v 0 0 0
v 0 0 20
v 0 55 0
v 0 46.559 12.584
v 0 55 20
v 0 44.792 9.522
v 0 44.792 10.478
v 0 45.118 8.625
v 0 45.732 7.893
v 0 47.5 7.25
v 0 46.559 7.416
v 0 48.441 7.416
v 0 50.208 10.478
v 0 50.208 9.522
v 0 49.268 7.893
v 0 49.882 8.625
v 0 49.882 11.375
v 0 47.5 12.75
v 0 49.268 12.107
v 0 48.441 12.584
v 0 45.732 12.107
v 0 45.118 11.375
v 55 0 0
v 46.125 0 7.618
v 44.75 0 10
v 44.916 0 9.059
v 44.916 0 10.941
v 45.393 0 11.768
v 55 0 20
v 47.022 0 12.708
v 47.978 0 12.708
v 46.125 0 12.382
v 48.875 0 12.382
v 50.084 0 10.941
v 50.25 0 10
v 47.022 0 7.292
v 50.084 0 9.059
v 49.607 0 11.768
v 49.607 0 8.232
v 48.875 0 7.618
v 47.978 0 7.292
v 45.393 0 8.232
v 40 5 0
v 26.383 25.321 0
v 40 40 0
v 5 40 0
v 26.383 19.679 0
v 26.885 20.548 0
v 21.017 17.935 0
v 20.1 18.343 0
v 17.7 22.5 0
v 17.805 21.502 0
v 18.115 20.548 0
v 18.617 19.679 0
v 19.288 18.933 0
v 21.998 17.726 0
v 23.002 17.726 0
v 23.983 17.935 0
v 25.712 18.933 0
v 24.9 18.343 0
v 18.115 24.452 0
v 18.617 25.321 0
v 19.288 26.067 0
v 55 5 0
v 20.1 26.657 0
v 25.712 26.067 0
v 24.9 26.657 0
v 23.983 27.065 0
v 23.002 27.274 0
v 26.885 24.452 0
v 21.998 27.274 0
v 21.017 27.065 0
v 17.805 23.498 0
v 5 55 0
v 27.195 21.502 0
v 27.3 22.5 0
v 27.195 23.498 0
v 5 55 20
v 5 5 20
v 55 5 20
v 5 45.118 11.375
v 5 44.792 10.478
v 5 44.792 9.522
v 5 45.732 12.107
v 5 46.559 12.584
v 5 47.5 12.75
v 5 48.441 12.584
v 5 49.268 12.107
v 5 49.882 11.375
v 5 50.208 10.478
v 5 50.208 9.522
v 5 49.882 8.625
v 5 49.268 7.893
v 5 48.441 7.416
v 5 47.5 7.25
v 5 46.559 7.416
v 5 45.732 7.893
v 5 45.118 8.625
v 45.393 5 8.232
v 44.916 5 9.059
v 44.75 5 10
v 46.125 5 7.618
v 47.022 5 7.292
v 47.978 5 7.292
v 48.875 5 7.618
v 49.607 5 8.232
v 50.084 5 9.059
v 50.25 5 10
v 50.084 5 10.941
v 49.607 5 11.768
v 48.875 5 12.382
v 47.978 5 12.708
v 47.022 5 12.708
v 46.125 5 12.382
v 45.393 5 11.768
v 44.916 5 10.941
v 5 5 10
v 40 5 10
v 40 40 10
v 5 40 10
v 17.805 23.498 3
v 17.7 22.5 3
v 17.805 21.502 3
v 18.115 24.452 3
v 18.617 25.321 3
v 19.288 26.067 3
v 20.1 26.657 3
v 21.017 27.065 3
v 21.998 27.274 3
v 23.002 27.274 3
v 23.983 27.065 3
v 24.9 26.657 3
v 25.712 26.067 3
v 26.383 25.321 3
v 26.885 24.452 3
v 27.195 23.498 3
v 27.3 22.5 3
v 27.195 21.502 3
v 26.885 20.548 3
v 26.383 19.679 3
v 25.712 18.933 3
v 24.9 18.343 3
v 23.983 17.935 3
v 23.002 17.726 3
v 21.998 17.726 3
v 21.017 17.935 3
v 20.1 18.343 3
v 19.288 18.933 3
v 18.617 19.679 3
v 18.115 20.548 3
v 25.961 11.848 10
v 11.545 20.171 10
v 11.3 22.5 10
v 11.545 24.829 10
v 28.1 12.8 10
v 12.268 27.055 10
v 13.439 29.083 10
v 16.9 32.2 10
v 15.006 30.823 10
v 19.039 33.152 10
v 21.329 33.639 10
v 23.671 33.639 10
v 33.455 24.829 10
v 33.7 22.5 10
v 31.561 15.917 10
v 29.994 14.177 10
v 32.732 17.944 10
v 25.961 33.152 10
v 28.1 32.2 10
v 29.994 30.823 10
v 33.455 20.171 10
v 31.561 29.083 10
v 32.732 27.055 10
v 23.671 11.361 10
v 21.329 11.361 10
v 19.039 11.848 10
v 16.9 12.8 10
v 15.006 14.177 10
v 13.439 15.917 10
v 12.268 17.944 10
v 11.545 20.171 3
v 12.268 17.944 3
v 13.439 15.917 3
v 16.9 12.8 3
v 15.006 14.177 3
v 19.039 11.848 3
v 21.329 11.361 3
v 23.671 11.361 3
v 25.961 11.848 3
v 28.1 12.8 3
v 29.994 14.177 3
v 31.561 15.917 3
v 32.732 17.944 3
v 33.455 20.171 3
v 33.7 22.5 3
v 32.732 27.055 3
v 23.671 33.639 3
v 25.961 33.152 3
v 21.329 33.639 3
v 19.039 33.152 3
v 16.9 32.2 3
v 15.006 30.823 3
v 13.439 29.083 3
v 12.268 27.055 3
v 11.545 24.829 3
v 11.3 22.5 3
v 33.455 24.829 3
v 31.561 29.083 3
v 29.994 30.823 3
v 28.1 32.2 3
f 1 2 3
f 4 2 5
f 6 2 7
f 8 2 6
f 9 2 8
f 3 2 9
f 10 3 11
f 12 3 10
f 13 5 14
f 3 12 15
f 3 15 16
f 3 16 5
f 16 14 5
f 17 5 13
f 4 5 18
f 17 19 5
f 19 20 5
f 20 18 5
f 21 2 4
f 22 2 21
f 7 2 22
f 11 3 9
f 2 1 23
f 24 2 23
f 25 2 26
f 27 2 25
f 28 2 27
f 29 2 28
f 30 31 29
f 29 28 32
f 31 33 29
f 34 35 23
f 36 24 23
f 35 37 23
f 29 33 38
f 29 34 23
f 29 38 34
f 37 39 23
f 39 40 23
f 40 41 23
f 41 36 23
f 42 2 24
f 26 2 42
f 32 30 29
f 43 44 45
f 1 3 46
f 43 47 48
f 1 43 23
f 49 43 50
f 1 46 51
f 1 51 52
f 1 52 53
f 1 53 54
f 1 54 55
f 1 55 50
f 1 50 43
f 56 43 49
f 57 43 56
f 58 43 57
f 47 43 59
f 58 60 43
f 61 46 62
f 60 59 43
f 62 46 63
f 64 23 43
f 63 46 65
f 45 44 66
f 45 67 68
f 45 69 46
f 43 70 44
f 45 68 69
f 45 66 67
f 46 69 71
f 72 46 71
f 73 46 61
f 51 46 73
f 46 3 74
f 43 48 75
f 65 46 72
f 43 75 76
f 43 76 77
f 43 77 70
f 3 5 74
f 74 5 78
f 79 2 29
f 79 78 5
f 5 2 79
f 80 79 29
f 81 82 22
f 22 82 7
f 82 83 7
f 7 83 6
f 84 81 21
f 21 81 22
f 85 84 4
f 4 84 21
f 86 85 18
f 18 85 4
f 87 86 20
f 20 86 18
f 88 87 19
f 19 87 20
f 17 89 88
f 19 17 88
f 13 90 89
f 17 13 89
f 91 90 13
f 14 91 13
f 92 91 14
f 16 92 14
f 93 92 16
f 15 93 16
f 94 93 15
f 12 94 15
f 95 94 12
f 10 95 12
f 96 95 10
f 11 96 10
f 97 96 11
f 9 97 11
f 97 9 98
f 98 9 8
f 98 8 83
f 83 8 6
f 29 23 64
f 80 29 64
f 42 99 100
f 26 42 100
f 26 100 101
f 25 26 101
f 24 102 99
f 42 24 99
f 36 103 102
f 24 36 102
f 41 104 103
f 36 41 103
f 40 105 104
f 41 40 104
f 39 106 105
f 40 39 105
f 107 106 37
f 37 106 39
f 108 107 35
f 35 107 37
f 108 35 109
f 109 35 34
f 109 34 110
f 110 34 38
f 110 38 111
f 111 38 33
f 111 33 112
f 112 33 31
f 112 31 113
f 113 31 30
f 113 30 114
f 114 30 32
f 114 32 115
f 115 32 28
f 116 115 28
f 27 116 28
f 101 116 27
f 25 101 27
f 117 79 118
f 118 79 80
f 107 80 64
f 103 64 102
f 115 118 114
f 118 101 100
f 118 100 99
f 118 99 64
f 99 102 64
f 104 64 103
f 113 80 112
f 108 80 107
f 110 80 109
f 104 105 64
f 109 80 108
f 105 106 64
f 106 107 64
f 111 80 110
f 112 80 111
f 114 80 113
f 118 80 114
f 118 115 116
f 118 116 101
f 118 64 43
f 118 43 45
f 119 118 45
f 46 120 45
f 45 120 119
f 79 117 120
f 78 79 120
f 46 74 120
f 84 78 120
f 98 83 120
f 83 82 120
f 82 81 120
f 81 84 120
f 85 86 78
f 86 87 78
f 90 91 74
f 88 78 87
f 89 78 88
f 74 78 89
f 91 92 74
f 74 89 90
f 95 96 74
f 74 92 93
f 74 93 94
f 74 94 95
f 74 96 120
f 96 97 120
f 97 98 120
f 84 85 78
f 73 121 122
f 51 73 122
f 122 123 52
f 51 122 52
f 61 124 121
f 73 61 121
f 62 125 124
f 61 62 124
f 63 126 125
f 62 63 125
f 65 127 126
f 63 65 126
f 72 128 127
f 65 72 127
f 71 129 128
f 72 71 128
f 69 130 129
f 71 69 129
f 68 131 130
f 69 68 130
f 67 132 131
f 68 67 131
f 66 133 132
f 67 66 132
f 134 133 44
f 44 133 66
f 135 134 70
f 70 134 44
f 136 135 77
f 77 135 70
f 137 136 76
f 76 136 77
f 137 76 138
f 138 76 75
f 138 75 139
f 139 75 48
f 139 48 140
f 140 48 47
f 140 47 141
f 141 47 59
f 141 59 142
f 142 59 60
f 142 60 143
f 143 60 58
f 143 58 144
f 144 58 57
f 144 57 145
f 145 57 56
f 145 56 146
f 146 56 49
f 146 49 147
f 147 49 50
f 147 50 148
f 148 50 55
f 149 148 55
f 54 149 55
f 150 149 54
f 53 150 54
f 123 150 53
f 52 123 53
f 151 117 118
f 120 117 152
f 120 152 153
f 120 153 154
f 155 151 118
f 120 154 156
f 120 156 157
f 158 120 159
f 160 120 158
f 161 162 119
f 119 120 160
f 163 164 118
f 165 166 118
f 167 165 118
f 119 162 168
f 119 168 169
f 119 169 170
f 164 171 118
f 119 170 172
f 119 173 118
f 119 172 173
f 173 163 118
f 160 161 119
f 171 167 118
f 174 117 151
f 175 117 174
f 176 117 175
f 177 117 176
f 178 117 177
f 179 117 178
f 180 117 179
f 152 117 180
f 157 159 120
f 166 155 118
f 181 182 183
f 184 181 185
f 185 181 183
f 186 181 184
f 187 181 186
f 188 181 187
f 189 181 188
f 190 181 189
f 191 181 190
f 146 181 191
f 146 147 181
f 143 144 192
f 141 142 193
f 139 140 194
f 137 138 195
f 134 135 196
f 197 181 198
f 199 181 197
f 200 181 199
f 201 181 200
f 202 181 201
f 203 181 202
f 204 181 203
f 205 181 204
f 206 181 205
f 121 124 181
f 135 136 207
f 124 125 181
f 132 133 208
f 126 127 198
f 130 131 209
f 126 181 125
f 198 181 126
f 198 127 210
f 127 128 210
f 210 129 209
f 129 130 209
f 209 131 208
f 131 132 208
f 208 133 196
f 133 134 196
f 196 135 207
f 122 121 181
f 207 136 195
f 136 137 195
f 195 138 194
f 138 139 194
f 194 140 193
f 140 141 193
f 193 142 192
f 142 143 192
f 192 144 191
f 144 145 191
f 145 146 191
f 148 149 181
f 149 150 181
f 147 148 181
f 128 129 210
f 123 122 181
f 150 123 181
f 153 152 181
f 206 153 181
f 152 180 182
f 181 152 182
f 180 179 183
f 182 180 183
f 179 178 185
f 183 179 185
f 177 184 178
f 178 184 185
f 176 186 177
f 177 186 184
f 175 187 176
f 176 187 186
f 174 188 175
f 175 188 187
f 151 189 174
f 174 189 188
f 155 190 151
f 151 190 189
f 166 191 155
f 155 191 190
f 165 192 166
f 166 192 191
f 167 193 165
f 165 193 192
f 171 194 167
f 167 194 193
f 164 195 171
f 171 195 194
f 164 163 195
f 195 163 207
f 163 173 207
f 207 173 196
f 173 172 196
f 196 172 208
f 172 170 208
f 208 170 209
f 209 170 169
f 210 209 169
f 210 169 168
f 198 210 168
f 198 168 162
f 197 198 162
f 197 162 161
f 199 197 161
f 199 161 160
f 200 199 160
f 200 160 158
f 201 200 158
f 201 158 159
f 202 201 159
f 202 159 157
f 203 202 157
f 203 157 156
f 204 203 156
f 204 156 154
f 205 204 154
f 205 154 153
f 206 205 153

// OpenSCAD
barwidth = 20;
width_ridge=4;
widthNema17=45;
nema17holeOffset =6;
nema17innerHole=25/2;
nema17Shaft=8/2;
nema17Center = widthNema17/2;
nema17HoleDistance =31;

motorThickNess=5;
offsetx =0;
offsety  =0;



height = widthNema17-5;
width = widthNema17-5;

thickness=barwidth;
spacing_bars = 50;
largeCircle = 70.0;
holeSize=5.5;
od608=22;
id608=8;
holes = [

];



difference() {
union() {

cube([width,width,thickness/2],false);

cube([width+15,5,thickness],false);
cube([5,width+15,thickness],false);


}



translate([0,0,-0.1]) {


	for(i = holes) {
		translate([offsetx + i[0],offsety + i[1],0])
			cylinder(h=100,r=i[2]/2, center = false, $fs=1);
	}


}

translate([nema17Center,nema17Center,3]) 
	cylinder(h=100,r=od608/2+0.2, center = false, $fs=1);

translate([nema17Center,nema17Center,-1]) 
	cylinder(h=100,r=id608/2*1.2, center = false, $fs=1);


translate([width+15/2,-1,thickness/2]) 
	rotate([-90,0,0])
	cylinder(h=100,r=5.5/2, center = false, $fs=1);

translate([-1,width+15/2,thickness/2]) 
	rotate([0,90,0])
	cylinder(h=100,r=5.5/2, center = false, $fs=1);
}
